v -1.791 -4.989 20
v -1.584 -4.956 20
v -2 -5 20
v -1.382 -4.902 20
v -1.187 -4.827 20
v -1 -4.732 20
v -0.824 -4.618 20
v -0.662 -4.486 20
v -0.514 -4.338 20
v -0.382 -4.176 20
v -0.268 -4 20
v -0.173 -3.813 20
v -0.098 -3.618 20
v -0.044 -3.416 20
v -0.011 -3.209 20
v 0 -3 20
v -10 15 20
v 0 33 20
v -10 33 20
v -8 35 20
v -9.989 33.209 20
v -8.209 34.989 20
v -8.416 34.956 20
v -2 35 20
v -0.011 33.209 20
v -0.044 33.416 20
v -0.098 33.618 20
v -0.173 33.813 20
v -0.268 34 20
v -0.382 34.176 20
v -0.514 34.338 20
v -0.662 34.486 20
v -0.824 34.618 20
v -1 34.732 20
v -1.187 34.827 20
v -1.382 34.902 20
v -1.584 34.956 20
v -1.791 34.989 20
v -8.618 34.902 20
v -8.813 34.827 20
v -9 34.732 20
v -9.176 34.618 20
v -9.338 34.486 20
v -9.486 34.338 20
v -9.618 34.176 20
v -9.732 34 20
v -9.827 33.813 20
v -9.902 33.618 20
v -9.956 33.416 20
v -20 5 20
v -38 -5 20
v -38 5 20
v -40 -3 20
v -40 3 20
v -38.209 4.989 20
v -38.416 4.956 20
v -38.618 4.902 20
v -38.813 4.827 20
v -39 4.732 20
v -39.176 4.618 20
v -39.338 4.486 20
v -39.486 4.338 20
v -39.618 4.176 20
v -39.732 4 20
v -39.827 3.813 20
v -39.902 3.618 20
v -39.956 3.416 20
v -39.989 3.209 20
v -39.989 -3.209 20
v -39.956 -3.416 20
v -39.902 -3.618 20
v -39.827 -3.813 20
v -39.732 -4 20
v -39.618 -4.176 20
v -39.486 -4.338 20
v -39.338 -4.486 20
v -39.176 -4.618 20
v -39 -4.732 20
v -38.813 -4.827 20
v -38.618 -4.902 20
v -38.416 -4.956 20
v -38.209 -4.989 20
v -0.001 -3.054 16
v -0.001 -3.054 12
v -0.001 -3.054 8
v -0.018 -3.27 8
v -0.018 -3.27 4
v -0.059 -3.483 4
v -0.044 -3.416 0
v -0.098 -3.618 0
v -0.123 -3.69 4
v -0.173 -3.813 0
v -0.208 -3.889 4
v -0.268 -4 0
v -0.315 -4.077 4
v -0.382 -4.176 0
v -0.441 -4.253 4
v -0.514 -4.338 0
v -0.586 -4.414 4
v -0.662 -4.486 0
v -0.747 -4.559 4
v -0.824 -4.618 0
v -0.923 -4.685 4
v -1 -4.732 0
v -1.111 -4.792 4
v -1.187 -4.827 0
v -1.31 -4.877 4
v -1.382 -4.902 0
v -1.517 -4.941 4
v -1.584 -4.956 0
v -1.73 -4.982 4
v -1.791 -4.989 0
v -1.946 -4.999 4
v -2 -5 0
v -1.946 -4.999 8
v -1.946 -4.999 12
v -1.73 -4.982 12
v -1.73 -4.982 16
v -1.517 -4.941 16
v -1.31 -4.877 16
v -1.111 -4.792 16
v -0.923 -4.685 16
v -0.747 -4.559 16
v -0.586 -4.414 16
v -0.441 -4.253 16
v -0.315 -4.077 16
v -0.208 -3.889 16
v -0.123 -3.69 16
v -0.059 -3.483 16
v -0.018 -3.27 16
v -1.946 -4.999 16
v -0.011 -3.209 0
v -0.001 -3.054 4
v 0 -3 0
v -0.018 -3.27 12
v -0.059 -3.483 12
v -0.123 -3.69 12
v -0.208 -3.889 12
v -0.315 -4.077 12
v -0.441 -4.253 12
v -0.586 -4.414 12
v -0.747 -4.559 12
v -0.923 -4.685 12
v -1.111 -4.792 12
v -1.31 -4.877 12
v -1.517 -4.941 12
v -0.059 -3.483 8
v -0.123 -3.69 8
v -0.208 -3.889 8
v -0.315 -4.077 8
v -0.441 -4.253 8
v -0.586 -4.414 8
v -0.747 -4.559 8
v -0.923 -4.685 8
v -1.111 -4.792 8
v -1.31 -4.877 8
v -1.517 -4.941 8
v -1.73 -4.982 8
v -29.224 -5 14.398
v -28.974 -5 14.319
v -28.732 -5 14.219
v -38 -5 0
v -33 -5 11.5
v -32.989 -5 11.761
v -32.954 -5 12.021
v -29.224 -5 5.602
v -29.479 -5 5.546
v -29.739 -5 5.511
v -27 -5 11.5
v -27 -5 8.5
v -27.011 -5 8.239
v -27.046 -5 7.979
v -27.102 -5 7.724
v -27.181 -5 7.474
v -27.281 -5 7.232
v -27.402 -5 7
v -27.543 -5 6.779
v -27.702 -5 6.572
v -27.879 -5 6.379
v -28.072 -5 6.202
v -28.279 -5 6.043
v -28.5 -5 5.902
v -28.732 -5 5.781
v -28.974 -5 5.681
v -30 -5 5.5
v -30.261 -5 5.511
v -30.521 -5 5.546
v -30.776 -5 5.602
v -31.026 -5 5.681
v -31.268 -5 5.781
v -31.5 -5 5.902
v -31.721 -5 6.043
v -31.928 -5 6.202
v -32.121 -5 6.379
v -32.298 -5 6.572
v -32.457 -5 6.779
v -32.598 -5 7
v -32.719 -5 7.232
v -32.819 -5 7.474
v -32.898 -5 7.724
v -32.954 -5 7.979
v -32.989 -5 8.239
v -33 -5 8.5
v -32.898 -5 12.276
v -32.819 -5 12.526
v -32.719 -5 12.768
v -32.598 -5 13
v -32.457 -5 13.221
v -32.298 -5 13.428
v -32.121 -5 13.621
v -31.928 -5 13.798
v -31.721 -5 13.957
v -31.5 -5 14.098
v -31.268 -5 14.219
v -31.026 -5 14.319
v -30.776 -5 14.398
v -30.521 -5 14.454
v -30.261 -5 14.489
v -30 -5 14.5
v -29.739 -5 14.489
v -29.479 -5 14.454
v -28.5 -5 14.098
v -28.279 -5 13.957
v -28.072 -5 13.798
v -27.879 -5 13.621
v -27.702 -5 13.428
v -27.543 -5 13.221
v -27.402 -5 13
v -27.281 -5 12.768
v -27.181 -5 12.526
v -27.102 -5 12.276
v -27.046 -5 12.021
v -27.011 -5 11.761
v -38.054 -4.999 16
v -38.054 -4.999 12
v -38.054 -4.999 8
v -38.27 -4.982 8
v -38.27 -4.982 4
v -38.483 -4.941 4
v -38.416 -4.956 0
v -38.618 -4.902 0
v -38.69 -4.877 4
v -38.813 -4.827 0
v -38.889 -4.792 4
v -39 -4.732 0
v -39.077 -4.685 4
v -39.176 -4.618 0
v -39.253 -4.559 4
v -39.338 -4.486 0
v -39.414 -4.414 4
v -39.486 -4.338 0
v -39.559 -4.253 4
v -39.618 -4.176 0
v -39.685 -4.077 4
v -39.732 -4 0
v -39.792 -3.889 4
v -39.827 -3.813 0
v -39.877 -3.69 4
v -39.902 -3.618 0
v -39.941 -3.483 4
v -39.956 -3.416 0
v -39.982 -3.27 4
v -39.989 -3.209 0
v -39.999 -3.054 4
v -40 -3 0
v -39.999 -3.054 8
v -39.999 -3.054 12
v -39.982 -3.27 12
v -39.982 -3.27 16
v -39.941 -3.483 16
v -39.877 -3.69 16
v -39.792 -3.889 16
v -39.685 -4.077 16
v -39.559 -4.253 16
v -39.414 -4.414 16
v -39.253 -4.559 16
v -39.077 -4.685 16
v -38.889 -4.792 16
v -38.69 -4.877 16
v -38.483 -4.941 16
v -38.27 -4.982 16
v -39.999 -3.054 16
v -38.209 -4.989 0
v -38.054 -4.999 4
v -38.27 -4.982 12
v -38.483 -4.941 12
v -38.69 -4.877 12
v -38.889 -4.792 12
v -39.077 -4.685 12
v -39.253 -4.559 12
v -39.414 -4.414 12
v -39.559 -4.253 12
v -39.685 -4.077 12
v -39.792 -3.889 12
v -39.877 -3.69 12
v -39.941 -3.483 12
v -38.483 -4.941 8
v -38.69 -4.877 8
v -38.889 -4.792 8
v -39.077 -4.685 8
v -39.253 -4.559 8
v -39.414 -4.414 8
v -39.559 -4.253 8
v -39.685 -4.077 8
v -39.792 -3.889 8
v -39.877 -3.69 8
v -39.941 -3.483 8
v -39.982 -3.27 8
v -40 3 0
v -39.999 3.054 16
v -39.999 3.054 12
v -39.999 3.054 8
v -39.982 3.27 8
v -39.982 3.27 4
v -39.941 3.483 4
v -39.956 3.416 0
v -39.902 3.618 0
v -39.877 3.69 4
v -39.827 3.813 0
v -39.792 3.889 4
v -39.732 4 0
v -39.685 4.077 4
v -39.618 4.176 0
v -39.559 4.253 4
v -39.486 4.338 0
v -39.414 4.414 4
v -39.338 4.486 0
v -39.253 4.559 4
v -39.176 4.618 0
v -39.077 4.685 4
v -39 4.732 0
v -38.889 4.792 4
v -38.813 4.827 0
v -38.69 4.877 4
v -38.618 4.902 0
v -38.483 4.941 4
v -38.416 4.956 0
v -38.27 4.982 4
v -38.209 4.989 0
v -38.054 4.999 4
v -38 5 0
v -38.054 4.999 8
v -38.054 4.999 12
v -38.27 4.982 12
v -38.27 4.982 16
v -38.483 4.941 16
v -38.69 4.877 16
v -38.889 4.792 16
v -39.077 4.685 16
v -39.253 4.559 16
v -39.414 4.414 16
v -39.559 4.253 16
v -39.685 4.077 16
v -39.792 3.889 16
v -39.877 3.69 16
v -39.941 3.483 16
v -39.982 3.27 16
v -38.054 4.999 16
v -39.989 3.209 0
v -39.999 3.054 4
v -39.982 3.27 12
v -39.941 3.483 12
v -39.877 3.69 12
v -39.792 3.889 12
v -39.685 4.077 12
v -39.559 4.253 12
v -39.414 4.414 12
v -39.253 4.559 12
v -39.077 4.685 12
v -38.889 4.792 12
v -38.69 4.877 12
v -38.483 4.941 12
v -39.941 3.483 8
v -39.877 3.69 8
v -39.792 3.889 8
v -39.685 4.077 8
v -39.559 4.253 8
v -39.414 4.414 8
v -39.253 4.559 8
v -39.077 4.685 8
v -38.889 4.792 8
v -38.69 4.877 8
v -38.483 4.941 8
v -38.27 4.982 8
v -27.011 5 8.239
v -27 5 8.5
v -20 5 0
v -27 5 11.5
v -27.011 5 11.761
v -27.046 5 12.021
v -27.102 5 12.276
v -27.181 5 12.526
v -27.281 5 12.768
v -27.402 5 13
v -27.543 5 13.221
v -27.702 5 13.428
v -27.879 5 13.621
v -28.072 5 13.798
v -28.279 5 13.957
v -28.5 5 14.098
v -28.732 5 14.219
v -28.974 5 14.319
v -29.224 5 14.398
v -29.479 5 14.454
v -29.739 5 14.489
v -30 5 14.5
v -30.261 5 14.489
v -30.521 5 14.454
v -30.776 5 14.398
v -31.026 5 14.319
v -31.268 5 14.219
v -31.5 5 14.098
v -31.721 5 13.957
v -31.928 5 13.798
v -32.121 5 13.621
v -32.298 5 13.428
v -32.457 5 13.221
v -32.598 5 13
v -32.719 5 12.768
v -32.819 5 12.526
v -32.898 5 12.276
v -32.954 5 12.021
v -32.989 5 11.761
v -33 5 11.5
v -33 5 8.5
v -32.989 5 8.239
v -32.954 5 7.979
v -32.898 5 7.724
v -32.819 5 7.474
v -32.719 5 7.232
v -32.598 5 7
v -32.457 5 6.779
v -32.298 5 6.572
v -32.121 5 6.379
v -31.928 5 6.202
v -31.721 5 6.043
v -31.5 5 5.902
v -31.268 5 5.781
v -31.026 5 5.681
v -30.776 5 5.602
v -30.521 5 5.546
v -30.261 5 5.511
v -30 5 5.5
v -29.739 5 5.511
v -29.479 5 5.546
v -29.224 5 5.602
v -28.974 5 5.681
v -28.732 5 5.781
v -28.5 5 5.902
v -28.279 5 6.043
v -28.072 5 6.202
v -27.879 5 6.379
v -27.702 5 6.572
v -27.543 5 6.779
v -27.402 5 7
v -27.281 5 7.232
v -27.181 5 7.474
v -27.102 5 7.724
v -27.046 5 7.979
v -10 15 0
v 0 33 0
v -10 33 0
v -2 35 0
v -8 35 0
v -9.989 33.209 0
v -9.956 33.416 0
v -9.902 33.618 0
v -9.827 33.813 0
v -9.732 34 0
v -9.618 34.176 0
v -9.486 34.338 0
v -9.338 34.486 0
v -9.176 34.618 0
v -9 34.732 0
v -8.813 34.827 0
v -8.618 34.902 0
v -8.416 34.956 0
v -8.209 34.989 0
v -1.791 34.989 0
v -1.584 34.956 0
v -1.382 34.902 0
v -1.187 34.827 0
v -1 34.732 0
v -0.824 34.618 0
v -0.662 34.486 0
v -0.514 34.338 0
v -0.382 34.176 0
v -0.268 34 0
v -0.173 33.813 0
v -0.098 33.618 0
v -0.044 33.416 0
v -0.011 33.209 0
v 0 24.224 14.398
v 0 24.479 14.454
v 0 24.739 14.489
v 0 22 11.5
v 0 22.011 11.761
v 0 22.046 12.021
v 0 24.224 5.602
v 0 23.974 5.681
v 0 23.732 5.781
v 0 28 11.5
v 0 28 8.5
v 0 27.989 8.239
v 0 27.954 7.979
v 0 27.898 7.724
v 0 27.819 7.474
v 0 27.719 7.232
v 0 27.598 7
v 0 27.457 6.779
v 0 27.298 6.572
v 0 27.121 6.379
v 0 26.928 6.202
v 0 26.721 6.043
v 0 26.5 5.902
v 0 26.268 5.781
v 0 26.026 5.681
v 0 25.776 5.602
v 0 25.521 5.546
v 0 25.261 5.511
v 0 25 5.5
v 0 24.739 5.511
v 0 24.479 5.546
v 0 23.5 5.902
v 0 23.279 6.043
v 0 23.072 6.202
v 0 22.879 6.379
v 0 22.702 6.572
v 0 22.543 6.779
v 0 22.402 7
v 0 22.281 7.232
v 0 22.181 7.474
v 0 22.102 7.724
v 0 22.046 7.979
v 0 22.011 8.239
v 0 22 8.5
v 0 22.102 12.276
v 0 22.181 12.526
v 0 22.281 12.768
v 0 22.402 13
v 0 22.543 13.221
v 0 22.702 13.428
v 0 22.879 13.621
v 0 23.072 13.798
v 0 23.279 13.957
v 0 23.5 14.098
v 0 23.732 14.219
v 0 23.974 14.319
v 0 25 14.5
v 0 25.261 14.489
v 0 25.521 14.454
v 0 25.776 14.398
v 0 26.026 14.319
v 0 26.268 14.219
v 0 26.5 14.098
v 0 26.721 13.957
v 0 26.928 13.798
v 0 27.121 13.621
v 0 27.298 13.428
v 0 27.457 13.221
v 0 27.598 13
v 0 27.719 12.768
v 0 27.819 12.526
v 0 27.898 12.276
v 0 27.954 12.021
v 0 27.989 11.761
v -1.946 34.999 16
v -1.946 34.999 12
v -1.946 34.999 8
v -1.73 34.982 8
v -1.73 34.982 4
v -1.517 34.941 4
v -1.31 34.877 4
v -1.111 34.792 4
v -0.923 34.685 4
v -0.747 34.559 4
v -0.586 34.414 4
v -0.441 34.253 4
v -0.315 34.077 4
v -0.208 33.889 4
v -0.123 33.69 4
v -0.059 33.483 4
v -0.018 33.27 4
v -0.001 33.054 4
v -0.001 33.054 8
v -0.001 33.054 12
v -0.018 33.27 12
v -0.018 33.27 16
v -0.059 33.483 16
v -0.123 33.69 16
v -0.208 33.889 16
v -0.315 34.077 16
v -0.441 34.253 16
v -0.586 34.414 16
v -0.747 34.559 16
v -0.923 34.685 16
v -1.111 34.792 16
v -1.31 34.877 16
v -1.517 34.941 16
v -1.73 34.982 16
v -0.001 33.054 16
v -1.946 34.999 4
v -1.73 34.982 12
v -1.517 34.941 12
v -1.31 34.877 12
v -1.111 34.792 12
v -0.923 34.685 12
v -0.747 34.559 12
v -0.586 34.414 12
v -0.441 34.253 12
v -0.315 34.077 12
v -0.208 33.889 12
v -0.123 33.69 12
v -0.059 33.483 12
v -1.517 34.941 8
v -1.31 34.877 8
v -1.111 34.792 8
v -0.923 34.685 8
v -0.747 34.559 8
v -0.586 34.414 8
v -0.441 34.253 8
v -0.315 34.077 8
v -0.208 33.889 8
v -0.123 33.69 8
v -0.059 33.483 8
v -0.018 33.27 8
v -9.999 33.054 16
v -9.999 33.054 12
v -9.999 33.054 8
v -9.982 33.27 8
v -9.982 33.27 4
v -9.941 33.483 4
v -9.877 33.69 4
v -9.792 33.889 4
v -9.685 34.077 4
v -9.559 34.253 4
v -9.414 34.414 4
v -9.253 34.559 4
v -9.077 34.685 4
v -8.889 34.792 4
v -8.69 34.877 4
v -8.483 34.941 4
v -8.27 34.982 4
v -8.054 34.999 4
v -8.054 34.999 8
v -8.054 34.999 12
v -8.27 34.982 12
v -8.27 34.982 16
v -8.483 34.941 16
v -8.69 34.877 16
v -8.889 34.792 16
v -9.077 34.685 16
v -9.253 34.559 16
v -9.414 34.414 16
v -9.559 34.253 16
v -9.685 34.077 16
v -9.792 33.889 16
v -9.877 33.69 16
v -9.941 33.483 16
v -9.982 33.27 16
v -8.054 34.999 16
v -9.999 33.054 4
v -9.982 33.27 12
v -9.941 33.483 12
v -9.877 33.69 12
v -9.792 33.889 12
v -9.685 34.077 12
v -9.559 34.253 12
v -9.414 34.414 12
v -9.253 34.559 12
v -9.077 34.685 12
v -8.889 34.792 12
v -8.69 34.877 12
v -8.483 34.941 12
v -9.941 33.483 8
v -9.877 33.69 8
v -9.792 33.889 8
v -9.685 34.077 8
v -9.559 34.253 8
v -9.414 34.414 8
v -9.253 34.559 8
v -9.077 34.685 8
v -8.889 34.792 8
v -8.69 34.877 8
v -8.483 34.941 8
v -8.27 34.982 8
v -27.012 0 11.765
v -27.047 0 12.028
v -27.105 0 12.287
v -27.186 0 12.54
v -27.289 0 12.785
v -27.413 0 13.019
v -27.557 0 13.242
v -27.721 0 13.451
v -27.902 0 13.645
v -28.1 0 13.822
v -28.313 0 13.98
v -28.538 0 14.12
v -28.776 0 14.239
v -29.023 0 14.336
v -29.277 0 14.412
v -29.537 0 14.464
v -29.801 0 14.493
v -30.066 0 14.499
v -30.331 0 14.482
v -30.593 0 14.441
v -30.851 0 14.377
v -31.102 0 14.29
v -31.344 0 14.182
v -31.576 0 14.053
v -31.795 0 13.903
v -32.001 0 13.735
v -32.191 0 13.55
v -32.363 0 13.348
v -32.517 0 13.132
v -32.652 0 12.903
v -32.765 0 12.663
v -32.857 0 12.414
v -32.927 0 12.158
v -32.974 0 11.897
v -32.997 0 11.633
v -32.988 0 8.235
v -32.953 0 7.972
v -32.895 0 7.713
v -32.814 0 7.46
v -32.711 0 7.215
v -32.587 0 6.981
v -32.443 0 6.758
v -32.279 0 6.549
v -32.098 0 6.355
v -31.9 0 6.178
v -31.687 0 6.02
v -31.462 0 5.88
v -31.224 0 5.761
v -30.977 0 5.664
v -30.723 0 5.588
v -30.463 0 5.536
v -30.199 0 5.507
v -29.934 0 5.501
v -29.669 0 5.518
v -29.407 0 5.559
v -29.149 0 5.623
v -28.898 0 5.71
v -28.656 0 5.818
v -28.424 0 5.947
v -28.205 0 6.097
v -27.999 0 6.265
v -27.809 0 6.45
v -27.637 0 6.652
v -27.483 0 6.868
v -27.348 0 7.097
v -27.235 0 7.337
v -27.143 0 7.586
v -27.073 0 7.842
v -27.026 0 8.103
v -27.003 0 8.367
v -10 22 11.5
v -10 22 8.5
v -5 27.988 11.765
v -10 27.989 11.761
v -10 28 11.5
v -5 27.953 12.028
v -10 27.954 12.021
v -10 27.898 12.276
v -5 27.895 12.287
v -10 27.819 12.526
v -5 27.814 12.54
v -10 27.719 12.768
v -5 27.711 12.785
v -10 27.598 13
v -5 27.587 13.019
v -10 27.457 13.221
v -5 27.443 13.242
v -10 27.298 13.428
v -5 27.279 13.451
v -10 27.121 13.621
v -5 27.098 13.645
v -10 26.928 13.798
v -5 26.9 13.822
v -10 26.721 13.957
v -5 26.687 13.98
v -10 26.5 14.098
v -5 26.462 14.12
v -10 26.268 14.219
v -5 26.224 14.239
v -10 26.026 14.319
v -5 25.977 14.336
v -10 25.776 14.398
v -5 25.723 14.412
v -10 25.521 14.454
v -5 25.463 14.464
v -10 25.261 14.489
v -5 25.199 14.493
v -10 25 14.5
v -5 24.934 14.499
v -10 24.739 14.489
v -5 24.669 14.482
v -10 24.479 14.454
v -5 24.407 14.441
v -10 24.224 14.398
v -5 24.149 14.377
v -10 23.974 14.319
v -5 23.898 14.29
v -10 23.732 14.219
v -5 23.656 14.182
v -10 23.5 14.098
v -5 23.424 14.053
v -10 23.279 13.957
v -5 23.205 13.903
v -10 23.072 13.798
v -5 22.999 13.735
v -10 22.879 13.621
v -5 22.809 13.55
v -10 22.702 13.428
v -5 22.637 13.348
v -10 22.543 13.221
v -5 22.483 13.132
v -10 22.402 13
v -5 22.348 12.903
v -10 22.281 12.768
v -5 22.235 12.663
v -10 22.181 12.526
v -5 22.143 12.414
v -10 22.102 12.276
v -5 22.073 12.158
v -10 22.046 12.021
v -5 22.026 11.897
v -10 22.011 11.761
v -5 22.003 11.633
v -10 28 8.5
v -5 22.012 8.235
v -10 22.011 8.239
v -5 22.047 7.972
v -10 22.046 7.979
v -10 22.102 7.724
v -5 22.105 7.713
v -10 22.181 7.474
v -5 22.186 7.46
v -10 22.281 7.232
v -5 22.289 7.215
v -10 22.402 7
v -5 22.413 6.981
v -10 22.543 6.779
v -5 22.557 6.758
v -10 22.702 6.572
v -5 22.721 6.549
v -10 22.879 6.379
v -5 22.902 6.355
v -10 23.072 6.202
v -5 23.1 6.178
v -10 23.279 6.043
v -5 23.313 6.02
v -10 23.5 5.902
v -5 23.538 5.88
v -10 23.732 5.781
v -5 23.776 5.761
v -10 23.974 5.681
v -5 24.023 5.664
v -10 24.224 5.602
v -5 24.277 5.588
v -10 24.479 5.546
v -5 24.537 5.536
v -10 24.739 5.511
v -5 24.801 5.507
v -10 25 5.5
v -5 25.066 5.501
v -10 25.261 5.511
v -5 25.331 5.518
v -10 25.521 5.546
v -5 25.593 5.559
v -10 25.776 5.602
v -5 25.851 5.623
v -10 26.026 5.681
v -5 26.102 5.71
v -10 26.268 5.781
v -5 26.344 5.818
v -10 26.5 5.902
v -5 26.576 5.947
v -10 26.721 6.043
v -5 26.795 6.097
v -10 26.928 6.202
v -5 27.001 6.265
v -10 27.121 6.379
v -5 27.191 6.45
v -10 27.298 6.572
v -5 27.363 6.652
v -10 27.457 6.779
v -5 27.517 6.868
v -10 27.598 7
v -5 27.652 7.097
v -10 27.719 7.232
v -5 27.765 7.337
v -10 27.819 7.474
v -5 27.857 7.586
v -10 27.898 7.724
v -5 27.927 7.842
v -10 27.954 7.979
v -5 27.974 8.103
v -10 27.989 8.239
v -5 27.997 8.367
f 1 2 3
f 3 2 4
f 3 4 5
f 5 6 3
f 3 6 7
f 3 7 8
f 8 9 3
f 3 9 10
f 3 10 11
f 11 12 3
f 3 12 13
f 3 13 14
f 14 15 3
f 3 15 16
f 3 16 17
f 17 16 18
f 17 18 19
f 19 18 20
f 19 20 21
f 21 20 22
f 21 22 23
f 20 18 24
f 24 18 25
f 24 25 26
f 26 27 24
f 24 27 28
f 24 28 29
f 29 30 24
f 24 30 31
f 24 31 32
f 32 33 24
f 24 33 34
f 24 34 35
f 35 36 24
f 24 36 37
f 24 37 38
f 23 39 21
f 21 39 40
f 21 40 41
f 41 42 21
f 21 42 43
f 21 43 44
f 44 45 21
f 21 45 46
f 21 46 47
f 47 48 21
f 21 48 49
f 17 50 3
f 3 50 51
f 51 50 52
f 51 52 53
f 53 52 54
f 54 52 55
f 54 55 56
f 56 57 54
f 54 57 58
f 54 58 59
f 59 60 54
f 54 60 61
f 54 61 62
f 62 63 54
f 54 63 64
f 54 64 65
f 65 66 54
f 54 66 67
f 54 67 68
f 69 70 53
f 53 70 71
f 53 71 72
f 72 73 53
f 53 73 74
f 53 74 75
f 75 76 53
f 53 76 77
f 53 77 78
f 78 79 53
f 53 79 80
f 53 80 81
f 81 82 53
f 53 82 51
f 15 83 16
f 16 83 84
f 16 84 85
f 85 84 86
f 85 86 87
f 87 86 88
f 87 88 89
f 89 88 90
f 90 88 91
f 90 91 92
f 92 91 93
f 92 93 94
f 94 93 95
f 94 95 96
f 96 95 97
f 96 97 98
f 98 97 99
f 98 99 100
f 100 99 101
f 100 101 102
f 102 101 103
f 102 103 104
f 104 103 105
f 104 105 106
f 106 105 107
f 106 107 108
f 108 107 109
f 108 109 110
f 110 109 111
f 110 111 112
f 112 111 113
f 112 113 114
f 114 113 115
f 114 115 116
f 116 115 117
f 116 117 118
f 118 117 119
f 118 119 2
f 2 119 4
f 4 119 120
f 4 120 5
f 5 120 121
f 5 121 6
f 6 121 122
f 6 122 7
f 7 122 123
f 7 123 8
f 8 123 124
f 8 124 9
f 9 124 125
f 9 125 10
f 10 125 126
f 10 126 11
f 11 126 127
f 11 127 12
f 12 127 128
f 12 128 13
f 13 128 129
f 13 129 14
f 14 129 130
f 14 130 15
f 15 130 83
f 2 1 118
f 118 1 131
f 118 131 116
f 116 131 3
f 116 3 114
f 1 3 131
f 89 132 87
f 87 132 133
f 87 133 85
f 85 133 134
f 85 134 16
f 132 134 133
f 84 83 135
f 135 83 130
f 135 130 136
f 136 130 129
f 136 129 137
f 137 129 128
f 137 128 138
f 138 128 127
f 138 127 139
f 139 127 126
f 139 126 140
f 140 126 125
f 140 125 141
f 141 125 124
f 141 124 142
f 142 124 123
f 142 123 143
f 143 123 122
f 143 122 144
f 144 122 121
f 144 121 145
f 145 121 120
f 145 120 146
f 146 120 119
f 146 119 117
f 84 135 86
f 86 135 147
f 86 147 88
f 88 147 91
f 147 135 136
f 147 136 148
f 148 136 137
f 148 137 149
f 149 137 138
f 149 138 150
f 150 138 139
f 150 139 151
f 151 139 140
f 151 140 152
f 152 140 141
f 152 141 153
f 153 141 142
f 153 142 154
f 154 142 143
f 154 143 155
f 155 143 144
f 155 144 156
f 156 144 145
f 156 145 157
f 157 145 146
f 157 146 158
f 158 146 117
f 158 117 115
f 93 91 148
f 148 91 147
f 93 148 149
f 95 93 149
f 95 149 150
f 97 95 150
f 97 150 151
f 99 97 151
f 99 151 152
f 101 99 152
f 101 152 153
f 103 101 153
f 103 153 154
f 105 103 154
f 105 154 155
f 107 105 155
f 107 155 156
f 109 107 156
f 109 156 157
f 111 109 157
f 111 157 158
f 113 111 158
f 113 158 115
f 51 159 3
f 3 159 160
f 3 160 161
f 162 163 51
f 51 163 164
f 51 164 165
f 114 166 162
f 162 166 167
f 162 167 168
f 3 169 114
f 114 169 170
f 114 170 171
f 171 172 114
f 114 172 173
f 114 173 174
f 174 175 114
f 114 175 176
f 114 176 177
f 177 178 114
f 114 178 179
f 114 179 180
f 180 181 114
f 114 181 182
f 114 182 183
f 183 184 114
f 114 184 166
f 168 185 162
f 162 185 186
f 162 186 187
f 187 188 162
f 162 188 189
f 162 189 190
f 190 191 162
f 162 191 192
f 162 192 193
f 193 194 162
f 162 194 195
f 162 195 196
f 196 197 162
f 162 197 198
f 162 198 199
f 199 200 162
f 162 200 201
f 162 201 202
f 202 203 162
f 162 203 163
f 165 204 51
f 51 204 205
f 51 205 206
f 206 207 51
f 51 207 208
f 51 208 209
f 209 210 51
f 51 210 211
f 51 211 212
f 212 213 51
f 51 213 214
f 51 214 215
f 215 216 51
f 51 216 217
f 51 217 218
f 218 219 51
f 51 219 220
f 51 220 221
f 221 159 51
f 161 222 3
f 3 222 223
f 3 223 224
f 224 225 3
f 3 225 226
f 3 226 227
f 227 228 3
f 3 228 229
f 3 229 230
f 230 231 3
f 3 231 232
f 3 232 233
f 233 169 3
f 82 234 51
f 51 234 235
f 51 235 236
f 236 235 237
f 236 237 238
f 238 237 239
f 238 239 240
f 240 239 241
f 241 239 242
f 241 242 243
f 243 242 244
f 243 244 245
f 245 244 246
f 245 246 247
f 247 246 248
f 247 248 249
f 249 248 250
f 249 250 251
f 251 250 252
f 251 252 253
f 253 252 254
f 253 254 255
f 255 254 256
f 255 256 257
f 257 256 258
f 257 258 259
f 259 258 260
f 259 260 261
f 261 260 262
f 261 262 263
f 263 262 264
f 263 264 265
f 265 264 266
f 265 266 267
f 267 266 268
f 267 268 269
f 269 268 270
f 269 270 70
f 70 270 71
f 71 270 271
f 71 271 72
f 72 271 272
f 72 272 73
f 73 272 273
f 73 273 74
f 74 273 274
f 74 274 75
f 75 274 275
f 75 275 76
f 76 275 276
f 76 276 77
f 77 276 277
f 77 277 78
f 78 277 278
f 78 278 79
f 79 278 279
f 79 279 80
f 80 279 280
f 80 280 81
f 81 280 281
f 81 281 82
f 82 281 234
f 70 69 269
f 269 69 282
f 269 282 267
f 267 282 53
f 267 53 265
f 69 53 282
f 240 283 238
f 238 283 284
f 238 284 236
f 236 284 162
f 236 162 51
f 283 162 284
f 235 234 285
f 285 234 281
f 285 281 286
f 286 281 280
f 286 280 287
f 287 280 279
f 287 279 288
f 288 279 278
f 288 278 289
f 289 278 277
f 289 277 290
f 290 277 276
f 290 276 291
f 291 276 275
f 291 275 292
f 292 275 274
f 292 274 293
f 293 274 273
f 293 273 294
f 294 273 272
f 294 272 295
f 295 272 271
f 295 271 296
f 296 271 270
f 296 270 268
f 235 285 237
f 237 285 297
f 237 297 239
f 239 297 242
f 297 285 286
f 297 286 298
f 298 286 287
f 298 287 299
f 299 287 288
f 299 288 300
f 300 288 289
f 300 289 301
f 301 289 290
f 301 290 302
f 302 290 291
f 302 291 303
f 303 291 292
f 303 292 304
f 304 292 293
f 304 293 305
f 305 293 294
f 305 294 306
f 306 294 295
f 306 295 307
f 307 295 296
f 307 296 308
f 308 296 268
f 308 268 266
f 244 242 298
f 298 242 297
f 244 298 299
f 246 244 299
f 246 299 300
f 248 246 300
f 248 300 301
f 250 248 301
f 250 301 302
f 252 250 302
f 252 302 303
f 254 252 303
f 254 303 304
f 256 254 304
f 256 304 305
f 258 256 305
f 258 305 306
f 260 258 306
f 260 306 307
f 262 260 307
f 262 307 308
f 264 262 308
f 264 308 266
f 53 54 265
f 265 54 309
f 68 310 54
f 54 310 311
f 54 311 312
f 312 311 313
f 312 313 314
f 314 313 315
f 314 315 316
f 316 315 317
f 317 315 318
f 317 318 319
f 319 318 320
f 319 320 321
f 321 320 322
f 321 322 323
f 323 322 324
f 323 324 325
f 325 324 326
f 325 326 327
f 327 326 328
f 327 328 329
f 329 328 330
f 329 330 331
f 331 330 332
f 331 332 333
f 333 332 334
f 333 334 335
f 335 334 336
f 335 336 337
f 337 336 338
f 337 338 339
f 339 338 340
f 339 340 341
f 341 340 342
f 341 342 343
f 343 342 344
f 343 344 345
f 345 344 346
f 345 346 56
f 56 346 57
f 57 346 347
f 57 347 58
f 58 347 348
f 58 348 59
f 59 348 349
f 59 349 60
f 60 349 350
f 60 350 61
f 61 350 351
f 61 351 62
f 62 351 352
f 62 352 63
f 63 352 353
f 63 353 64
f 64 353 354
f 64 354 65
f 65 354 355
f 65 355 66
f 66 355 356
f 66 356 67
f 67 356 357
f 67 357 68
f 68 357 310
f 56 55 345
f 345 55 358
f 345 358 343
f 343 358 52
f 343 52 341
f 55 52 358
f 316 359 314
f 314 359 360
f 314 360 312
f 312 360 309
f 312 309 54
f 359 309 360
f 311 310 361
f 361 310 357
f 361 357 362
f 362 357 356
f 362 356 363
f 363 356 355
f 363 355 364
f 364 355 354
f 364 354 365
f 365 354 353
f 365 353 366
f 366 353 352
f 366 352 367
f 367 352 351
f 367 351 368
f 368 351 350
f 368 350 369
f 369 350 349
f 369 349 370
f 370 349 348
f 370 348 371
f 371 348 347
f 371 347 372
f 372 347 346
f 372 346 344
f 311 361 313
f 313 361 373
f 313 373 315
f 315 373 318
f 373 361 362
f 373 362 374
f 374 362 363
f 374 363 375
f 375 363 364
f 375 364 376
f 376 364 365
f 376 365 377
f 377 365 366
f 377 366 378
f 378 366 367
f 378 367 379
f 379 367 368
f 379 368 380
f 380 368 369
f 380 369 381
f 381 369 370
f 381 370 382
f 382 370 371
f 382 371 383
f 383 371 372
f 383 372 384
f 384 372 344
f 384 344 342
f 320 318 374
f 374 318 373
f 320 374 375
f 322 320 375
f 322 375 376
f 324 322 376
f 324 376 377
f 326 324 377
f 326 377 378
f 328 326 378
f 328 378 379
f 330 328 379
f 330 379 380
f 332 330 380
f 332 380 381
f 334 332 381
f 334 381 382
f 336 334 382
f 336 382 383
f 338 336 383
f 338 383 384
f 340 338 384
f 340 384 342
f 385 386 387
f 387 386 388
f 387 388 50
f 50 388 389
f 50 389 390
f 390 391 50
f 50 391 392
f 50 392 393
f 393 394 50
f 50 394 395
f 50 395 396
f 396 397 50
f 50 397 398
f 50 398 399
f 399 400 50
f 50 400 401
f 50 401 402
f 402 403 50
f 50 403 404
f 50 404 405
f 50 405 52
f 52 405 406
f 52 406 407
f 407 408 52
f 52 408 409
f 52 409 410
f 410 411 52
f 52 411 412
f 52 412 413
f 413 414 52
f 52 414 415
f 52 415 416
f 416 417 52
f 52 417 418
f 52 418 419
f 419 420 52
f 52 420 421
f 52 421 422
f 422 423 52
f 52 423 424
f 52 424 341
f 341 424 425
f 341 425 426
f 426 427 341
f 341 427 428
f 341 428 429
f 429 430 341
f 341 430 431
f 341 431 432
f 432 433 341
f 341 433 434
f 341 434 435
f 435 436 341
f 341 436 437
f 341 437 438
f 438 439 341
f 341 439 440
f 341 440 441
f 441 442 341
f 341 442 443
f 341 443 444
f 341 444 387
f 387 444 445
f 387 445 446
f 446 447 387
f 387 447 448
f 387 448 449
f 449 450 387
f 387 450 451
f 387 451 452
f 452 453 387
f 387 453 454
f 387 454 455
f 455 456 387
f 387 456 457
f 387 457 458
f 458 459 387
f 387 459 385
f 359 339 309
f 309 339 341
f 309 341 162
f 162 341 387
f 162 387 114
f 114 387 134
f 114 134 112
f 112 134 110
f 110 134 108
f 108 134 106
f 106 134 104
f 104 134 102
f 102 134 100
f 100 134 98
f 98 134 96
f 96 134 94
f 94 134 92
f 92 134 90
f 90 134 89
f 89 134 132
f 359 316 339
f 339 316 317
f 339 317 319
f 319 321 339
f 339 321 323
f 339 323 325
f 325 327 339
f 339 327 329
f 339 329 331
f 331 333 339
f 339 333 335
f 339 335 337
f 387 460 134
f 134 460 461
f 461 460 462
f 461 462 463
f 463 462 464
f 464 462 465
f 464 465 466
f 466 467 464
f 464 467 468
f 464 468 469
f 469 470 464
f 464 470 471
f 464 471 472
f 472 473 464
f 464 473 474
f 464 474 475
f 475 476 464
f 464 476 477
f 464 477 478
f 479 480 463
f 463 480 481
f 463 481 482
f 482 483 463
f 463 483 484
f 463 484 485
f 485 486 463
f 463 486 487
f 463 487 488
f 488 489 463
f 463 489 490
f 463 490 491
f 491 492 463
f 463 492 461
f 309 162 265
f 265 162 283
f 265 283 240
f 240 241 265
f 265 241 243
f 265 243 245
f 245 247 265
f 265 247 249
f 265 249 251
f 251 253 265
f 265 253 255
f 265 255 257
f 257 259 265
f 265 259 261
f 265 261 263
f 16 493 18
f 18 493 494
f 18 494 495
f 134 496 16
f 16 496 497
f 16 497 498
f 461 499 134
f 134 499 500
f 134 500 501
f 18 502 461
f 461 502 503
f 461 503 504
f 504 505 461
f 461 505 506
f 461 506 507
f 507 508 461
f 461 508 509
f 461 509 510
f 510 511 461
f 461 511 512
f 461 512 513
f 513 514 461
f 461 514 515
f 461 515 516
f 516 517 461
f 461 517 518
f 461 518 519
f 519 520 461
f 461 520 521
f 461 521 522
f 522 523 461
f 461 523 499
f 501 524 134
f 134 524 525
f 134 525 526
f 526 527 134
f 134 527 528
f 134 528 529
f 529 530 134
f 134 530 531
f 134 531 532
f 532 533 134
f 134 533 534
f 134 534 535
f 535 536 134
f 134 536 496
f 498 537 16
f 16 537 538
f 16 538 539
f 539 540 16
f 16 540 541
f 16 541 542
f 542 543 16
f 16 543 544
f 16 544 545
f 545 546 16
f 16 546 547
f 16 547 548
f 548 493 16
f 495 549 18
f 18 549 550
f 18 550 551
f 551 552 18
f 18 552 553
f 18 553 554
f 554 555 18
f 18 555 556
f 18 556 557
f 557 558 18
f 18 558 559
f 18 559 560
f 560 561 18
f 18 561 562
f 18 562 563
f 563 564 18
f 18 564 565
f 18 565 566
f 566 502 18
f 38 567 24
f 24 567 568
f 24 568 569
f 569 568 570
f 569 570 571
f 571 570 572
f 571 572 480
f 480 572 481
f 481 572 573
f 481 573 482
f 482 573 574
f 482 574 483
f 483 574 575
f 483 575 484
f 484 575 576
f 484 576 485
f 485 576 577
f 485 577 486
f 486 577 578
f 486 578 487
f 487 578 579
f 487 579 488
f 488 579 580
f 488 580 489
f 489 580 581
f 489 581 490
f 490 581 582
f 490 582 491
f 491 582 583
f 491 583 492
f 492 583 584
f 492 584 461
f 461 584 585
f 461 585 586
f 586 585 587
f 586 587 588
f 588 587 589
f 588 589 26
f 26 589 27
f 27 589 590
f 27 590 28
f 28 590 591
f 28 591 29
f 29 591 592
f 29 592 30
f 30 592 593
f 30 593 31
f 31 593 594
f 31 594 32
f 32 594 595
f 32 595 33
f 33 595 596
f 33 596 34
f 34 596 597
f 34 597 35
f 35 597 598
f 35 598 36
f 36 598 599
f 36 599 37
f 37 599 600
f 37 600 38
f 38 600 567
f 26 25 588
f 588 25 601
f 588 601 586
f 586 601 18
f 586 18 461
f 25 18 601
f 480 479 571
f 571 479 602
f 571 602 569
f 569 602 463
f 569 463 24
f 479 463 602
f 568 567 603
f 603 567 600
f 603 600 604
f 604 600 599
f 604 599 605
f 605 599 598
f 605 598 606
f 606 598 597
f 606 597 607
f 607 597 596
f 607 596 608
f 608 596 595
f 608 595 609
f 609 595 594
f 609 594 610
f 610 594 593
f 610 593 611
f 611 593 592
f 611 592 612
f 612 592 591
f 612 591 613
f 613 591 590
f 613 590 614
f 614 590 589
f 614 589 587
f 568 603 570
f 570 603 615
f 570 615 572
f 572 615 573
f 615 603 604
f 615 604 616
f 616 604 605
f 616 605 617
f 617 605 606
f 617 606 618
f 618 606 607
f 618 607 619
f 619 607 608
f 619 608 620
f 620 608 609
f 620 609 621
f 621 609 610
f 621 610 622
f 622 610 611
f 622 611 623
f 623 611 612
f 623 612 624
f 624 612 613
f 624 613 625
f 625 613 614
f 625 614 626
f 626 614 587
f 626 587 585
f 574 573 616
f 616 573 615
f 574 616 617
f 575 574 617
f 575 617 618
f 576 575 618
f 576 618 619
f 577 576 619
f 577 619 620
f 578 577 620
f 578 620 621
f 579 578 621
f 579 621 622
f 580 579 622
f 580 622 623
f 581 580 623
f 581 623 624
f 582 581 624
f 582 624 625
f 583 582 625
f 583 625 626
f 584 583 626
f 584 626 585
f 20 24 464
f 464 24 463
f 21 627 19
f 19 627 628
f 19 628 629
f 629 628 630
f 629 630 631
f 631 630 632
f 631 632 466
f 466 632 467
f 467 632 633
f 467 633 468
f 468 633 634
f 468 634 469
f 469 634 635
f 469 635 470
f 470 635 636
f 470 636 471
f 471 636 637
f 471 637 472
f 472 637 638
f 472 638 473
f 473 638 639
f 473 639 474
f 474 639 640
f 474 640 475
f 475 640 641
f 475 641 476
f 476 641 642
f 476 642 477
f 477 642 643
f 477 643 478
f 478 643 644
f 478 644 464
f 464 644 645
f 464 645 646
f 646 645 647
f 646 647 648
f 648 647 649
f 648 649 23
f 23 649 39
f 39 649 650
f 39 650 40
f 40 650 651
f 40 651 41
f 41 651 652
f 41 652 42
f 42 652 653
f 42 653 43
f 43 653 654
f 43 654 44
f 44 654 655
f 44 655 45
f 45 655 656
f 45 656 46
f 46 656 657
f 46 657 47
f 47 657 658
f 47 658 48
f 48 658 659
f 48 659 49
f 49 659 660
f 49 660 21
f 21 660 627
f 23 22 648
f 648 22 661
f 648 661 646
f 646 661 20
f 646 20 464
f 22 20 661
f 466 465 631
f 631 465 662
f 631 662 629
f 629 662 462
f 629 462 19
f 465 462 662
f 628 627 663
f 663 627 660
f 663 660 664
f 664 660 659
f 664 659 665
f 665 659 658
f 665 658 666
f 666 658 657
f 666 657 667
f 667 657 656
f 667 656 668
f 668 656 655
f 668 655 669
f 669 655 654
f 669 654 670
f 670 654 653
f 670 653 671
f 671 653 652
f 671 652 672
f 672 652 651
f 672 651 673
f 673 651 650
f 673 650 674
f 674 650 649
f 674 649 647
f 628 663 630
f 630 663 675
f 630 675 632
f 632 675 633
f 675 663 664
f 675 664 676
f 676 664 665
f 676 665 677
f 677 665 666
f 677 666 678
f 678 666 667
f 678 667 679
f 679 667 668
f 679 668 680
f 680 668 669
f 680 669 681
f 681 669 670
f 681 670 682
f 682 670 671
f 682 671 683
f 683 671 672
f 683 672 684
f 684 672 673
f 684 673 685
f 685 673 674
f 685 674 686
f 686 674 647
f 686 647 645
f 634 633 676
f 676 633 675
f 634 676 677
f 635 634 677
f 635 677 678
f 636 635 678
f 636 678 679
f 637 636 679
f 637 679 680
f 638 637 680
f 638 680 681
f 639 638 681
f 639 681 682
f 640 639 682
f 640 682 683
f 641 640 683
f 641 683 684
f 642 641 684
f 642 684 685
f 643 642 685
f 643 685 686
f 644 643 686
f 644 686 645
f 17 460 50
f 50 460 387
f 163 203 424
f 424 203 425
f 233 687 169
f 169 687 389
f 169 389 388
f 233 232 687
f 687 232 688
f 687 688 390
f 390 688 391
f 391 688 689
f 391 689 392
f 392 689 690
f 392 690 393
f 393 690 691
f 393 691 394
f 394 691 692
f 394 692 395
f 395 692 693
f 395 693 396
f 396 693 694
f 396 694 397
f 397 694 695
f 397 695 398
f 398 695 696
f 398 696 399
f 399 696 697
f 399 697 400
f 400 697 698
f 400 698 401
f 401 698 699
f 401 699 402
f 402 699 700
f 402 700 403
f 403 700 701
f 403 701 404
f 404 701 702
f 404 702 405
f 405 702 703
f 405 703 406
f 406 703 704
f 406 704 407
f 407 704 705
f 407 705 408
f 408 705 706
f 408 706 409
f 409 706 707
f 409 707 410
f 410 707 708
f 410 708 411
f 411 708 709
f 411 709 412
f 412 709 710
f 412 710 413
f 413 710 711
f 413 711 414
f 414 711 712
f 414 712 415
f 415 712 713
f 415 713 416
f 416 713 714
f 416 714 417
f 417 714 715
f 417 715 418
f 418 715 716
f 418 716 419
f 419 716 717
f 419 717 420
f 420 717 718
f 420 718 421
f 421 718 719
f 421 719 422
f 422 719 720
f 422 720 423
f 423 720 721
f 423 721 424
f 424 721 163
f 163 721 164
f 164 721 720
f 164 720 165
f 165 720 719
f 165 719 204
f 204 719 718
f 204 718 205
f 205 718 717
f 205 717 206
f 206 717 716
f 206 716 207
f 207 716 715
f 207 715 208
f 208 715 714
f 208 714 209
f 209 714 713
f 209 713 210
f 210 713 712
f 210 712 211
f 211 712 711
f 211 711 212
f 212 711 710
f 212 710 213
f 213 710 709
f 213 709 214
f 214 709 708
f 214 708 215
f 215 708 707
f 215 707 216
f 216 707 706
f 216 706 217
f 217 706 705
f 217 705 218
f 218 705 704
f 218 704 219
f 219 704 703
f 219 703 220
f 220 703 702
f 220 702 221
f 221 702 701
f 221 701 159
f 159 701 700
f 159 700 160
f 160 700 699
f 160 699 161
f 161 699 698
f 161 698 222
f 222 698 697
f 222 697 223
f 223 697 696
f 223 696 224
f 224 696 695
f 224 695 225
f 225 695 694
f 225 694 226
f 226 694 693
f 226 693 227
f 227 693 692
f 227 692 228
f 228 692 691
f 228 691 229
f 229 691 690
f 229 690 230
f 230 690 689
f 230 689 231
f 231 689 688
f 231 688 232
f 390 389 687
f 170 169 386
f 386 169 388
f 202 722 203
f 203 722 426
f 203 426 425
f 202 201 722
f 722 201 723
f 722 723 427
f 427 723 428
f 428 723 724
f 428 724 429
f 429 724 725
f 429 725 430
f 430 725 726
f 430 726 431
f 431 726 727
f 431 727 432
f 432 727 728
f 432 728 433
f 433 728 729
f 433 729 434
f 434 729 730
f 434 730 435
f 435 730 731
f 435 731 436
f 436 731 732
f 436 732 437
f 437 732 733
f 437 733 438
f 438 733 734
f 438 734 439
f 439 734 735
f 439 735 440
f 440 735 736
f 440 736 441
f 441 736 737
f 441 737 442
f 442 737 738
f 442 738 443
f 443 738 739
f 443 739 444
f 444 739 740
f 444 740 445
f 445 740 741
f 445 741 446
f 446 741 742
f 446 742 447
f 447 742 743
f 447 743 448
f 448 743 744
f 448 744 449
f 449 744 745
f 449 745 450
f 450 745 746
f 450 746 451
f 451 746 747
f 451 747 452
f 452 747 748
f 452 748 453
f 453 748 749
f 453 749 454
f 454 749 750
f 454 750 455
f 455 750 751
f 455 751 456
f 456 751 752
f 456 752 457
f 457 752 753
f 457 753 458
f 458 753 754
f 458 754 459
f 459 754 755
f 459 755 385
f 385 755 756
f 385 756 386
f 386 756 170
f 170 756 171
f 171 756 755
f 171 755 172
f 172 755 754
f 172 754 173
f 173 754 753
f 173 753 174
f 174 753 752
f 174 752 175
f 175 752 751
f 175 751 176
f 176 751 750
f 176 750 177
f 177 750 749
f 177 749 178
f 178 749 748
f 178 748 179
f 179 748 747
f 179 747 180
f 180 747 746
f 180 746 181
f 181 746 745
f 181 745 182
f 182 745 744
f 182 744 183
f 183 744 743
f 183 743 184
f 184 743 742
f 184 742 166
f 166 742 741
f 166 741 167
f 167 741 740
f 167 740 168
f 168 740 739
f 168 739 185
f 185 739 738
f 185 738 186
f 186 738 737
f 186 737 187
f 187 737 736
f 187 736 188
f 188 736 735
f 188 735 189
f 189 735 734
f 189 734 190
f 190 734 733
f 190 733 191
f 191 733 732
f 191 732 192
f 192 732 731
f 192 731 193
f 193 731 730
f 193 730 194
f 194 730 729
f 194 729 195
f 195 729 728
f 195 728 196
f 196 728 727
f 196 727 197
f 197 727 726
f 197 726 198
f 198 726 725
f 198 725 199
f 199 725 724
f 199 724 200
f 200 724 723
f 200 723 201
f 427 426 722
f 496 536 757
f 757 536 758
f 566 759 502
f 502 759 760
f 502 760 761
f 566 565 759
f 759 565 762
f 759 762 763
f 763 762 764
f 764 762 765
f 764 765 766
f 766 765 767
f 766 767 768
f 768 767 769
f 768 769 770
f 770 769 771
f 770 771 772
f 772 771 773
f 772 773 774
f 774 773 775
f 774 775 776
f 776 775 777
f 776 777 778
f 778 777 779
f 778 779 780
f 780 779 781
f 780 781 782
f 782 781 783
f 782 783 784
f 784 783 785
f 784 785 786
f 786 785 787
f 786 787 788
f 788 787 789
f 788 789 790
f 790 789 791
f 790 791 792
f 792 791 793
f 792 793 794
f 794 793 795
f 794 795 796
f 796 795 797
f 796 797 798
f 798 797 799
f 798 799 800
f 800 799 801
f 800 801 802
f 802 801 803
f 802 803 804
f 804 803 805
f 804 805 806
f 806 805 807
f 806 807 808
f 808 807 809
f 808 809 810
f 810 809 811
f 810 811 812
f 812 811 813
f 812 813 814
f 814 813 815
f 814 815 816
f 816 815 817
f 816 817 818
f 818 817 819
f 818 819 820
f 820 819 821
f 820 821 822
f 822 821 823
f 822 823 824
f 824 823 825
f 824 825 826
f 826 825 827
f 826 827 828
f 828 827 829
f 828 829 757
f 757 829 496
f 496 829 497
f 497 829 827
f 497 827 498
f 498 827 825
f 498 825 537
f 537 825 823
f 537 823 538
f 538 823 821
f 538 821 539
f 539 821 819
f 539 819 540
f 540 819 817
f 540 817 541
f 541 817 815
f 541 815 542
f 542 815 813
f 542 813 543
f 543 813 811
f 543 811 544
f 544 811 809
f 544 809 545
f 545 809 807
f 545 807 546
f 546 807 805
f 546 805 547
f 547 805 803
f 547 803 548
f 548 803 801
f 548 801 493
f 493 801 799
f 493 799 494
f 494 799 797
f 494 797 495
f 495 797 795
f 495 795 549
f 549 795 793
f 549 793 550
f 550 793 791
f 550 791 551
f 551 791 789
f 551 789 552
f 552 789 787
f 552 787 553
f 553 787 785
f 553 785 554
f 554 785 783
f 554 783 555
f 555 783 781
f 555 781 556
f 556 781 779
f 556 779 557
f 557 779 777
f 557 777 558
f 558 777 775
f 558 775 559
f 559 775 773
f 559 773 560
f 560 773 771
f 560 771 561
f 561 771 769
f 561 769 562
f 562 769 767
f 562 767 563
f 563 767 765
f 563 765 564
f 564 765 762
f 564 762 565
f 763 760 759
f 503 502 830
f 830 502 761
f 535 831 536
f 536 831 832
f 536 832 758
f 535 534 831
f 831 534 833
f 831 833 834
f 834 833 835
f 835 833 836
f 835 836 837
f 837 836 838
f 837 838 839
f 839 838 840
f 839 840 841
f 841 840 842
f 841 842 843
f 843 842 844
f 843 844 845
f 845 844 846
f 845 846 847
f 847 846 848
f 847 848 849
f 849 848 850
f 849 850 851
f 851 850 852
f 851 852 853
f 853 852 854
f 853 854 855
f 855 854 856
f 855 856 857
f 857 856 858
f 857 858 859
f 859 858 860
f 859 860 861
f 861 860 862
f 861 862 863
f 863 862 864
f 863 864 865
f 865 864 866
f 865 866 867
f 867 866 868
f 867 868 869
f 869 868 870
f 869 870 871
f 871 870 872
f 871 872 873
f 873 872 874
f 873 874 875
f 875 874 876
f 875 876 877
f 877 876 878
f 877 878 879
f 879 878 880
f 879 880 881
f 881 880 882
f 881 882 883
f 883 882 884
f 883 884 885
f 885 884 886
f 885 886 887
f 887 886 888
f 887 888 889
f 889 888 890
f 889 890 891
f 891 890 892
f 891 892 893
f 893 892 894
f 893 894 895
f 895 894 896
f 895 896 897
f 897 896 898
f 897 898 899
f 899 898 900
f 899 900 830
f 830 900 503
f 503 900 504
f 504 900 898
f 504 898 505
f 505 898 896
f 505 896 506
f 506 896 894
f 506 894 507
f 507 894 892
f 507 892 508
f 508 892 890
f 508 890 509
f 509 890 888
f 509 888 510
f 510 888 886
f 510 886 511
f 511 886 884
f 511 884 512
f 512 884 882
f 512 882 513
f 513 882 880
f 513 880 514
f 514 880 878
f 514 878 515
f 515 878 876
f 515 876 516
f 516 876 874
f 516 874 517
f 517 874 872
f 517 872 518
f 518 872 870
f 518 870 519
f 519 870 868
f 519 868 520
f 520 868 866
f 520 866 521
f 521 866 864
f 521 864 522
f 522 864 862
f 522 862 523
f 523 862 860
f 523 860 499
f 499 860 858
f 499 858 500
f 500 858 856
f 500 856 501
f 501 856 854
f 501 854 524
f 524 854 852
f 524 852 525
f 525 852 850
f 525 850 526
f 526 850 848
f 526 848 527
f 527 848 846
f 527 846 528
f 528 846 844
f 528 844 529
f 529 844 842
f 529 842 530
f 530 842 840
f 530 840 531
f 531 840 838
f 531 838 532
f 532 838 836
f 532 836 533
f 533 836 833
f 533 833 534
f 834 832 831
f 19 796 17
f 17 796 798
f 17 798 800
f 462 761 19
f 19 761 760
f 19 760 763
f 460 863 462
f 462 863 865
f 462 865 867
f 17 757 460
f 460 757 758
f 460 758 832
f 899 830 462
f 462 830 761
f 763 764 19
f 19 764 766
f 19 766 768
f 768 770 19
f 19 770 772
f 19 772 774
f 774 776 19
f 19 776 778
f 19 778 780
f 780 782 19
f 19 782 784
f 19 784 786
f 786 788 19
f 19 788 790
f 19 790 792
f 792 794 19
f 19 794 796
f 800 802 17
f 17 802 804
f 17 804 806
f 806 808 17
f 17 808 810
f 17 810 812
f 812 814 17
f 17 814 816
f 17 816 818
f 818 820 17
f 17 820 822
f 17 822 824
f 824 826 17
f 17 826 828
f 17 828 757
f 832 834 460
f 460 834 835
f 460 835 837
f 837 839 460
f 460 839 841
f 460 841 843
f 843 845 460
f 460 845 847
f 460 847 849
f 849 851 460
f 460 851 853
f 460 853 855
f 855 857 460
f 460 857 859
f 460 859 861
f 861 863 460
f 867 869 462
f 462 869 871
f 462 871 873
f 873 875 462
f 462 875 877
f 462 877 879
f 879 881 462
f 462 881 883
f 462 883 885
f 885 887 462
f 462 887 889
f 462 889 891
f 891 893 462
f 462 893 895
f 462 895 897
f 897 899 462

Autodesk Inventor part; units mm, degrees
ref_plane "YZ Plane" through (0, 0, 0) normal (1, 0, 0) x (0, 1, 0)
ref_plane "XZ Plane" through (0, 0, 0) normal (0, 1, 0) x (-1, 0, 0)
ref_plane "XY Plane" through (0, 0, 0) normal (0, 0, 1) x (1, 0, 0)
sketch "Sketch1" plane through (0, 0, 0) normal (0, 0, 1) x (1, 0, 0)
  line L0 (-40, 5) -> (0, 5)
  line L1 (0, 5) -> (0, -5)
  line L2 (0, -5) -> (-40, -5)
  line L3 (-40, -5) -> (-40, 5)
  line L4 (-10, 35) -> (0, 35)
  line L5 (0, 35) -> (0, 5)
  line L6 (0, 5) -> (-10, 5)
  line L7 (-10, 5) -> (-10, 35)
  point P0 (0, 0)
  point P1 (0, 5)
  dimension "d0" = 10
  dimension "d1" = 40
  dimension "d2" = 40
extrude "Extrusion1" add sketch "Sketch1" along normal blind 40
sketch "Sketch2" plane through (-10, 5, 0) normal (-1, 0, 0) x (0, 0, 1)
  line L0 (8.5, 20) -> (11.5, 20) construction
  line L1 (8.5, 17) -> (11.5, 17)
  line L2 (11.5, 23) -> (8.5, 23)
  arc A0 (8.5, 23) -> (8.5, 17) centre (8.5, 20) ccw
  arc A1 (11.5, 17) -> (11.5, 23) centre (11.5, 20) ccw
  line L3 (0, 30) -> (0, 0) projected
  line L4 (0, 30) -> (40, 30) projected
  line L5 (20, 21.547) -> (20, 15) construction
  line L6 (31.5, 20) -> (28.5, 20) construction
  line L7 (31.5, 17) -> (28.5, 17)
  line L8 (28.5, 23) -> (31.5, 23)
  arc A2 (31.5, 17) -> (31.5, 23) centre (31.5, 20) ccw
  arc A3 (28.5, 23) -> (28.5, 17) centre (28.5, 20) ccw
  point P0 (0, -5)
  point P1 (10, 20)
  point P2 (20, 18.2735)
  point P3 (20, 30)
  point P4 (30, 20)
  dimension "d5" = 6
  dimension "d6" = 3
  dimension "d7" = 10
  dimension "d8" = 10
extrude "Extrusion2" cut sketch "Sketch2" against normal through all
sketch "Sketch3" plane through (-40, 5, 0) normal (0, 1, 0) x (1, 0, 0)
  line L0 (10, -8.5) -> (10, -11.5) construction
  line L1 (7, -8.5) -> (7, -11.5)
  line L2 (13, -11.5) -> (13, -8.5)
  arc A0 (13, -8.5) -> (7, -8.5) centre (10, -8.5) ccw
  arc A1 (7, -11.5) -> (13, -11.5) centre (10, -11.5) ccw
  line L3 (30, 0) -> (0, 0) projected
  line L4 (0, 0) -> (0, -40) projected
  line L5 (15.2557, -20) -> (9.287, -20) construction
  line L6 (10, -31.5) -> (10, -28.5) construction
  line L7 (7, -31.5) -> (7, -28.5)
  line L8 (13, -28.5) -> (13, -31.5)
  arc A2 (7, -31.5) -> (13, -31.5) centre (10, -31.5) ccw
  arc A3 (13, -28.5) -> (7, -28.5) centre (10, -28.5) ccw
  point P0 (40, 0)
  point P1 (10, -10)
  point P2 (12.2713, -20)
  point P3 (0, -20)
  point P4 (10, -30)
  dimension "d11" = 3
  dimension "d12" = 6
  dimension "d13" = 10
  dimension "d14" = 10
extrude "Extrusion3" cut sketch "Sketch3" against normal through all
chamfer "Chamfer1" distance 10 angle 45 1 edges at (-10, 5, 20)
fillet "Fillet1" radius 2 5 edges at (-10, 35, 20) (0, 35, 20) (0, -5, 20) (-40, -5, 20) (-40, 5, 20)
sketch "Sketch4" plane through (0, -3, 0) normal (1, 0, 0) x (0, 0, -1)
  line L0 (-40, 38) -> (-20, 38)
  line L1 (-20, 38) -> (-20, -2)
  line L2 (-20, -2) -> (-40, -2)
  line L3 (-40, -2) -> (-40, 38)
  line L4 (0, 38) -> (-40, 38) projected
  line L5 (-40, 0) -> (-40, 36) projected
  line L6 (-40, -2) -> (0, -2) projected
  line L7 (0, 0) -> (0, 36) projected
  point P0 (0, 3)
  dimension "d21" = 20
extrude "Extrusion4" cut sketch "Sketch4" against normal through all
equation "\"d2\" = d1"
properties part number "0008-10-030 Suport L" material "ABS Plastic"
